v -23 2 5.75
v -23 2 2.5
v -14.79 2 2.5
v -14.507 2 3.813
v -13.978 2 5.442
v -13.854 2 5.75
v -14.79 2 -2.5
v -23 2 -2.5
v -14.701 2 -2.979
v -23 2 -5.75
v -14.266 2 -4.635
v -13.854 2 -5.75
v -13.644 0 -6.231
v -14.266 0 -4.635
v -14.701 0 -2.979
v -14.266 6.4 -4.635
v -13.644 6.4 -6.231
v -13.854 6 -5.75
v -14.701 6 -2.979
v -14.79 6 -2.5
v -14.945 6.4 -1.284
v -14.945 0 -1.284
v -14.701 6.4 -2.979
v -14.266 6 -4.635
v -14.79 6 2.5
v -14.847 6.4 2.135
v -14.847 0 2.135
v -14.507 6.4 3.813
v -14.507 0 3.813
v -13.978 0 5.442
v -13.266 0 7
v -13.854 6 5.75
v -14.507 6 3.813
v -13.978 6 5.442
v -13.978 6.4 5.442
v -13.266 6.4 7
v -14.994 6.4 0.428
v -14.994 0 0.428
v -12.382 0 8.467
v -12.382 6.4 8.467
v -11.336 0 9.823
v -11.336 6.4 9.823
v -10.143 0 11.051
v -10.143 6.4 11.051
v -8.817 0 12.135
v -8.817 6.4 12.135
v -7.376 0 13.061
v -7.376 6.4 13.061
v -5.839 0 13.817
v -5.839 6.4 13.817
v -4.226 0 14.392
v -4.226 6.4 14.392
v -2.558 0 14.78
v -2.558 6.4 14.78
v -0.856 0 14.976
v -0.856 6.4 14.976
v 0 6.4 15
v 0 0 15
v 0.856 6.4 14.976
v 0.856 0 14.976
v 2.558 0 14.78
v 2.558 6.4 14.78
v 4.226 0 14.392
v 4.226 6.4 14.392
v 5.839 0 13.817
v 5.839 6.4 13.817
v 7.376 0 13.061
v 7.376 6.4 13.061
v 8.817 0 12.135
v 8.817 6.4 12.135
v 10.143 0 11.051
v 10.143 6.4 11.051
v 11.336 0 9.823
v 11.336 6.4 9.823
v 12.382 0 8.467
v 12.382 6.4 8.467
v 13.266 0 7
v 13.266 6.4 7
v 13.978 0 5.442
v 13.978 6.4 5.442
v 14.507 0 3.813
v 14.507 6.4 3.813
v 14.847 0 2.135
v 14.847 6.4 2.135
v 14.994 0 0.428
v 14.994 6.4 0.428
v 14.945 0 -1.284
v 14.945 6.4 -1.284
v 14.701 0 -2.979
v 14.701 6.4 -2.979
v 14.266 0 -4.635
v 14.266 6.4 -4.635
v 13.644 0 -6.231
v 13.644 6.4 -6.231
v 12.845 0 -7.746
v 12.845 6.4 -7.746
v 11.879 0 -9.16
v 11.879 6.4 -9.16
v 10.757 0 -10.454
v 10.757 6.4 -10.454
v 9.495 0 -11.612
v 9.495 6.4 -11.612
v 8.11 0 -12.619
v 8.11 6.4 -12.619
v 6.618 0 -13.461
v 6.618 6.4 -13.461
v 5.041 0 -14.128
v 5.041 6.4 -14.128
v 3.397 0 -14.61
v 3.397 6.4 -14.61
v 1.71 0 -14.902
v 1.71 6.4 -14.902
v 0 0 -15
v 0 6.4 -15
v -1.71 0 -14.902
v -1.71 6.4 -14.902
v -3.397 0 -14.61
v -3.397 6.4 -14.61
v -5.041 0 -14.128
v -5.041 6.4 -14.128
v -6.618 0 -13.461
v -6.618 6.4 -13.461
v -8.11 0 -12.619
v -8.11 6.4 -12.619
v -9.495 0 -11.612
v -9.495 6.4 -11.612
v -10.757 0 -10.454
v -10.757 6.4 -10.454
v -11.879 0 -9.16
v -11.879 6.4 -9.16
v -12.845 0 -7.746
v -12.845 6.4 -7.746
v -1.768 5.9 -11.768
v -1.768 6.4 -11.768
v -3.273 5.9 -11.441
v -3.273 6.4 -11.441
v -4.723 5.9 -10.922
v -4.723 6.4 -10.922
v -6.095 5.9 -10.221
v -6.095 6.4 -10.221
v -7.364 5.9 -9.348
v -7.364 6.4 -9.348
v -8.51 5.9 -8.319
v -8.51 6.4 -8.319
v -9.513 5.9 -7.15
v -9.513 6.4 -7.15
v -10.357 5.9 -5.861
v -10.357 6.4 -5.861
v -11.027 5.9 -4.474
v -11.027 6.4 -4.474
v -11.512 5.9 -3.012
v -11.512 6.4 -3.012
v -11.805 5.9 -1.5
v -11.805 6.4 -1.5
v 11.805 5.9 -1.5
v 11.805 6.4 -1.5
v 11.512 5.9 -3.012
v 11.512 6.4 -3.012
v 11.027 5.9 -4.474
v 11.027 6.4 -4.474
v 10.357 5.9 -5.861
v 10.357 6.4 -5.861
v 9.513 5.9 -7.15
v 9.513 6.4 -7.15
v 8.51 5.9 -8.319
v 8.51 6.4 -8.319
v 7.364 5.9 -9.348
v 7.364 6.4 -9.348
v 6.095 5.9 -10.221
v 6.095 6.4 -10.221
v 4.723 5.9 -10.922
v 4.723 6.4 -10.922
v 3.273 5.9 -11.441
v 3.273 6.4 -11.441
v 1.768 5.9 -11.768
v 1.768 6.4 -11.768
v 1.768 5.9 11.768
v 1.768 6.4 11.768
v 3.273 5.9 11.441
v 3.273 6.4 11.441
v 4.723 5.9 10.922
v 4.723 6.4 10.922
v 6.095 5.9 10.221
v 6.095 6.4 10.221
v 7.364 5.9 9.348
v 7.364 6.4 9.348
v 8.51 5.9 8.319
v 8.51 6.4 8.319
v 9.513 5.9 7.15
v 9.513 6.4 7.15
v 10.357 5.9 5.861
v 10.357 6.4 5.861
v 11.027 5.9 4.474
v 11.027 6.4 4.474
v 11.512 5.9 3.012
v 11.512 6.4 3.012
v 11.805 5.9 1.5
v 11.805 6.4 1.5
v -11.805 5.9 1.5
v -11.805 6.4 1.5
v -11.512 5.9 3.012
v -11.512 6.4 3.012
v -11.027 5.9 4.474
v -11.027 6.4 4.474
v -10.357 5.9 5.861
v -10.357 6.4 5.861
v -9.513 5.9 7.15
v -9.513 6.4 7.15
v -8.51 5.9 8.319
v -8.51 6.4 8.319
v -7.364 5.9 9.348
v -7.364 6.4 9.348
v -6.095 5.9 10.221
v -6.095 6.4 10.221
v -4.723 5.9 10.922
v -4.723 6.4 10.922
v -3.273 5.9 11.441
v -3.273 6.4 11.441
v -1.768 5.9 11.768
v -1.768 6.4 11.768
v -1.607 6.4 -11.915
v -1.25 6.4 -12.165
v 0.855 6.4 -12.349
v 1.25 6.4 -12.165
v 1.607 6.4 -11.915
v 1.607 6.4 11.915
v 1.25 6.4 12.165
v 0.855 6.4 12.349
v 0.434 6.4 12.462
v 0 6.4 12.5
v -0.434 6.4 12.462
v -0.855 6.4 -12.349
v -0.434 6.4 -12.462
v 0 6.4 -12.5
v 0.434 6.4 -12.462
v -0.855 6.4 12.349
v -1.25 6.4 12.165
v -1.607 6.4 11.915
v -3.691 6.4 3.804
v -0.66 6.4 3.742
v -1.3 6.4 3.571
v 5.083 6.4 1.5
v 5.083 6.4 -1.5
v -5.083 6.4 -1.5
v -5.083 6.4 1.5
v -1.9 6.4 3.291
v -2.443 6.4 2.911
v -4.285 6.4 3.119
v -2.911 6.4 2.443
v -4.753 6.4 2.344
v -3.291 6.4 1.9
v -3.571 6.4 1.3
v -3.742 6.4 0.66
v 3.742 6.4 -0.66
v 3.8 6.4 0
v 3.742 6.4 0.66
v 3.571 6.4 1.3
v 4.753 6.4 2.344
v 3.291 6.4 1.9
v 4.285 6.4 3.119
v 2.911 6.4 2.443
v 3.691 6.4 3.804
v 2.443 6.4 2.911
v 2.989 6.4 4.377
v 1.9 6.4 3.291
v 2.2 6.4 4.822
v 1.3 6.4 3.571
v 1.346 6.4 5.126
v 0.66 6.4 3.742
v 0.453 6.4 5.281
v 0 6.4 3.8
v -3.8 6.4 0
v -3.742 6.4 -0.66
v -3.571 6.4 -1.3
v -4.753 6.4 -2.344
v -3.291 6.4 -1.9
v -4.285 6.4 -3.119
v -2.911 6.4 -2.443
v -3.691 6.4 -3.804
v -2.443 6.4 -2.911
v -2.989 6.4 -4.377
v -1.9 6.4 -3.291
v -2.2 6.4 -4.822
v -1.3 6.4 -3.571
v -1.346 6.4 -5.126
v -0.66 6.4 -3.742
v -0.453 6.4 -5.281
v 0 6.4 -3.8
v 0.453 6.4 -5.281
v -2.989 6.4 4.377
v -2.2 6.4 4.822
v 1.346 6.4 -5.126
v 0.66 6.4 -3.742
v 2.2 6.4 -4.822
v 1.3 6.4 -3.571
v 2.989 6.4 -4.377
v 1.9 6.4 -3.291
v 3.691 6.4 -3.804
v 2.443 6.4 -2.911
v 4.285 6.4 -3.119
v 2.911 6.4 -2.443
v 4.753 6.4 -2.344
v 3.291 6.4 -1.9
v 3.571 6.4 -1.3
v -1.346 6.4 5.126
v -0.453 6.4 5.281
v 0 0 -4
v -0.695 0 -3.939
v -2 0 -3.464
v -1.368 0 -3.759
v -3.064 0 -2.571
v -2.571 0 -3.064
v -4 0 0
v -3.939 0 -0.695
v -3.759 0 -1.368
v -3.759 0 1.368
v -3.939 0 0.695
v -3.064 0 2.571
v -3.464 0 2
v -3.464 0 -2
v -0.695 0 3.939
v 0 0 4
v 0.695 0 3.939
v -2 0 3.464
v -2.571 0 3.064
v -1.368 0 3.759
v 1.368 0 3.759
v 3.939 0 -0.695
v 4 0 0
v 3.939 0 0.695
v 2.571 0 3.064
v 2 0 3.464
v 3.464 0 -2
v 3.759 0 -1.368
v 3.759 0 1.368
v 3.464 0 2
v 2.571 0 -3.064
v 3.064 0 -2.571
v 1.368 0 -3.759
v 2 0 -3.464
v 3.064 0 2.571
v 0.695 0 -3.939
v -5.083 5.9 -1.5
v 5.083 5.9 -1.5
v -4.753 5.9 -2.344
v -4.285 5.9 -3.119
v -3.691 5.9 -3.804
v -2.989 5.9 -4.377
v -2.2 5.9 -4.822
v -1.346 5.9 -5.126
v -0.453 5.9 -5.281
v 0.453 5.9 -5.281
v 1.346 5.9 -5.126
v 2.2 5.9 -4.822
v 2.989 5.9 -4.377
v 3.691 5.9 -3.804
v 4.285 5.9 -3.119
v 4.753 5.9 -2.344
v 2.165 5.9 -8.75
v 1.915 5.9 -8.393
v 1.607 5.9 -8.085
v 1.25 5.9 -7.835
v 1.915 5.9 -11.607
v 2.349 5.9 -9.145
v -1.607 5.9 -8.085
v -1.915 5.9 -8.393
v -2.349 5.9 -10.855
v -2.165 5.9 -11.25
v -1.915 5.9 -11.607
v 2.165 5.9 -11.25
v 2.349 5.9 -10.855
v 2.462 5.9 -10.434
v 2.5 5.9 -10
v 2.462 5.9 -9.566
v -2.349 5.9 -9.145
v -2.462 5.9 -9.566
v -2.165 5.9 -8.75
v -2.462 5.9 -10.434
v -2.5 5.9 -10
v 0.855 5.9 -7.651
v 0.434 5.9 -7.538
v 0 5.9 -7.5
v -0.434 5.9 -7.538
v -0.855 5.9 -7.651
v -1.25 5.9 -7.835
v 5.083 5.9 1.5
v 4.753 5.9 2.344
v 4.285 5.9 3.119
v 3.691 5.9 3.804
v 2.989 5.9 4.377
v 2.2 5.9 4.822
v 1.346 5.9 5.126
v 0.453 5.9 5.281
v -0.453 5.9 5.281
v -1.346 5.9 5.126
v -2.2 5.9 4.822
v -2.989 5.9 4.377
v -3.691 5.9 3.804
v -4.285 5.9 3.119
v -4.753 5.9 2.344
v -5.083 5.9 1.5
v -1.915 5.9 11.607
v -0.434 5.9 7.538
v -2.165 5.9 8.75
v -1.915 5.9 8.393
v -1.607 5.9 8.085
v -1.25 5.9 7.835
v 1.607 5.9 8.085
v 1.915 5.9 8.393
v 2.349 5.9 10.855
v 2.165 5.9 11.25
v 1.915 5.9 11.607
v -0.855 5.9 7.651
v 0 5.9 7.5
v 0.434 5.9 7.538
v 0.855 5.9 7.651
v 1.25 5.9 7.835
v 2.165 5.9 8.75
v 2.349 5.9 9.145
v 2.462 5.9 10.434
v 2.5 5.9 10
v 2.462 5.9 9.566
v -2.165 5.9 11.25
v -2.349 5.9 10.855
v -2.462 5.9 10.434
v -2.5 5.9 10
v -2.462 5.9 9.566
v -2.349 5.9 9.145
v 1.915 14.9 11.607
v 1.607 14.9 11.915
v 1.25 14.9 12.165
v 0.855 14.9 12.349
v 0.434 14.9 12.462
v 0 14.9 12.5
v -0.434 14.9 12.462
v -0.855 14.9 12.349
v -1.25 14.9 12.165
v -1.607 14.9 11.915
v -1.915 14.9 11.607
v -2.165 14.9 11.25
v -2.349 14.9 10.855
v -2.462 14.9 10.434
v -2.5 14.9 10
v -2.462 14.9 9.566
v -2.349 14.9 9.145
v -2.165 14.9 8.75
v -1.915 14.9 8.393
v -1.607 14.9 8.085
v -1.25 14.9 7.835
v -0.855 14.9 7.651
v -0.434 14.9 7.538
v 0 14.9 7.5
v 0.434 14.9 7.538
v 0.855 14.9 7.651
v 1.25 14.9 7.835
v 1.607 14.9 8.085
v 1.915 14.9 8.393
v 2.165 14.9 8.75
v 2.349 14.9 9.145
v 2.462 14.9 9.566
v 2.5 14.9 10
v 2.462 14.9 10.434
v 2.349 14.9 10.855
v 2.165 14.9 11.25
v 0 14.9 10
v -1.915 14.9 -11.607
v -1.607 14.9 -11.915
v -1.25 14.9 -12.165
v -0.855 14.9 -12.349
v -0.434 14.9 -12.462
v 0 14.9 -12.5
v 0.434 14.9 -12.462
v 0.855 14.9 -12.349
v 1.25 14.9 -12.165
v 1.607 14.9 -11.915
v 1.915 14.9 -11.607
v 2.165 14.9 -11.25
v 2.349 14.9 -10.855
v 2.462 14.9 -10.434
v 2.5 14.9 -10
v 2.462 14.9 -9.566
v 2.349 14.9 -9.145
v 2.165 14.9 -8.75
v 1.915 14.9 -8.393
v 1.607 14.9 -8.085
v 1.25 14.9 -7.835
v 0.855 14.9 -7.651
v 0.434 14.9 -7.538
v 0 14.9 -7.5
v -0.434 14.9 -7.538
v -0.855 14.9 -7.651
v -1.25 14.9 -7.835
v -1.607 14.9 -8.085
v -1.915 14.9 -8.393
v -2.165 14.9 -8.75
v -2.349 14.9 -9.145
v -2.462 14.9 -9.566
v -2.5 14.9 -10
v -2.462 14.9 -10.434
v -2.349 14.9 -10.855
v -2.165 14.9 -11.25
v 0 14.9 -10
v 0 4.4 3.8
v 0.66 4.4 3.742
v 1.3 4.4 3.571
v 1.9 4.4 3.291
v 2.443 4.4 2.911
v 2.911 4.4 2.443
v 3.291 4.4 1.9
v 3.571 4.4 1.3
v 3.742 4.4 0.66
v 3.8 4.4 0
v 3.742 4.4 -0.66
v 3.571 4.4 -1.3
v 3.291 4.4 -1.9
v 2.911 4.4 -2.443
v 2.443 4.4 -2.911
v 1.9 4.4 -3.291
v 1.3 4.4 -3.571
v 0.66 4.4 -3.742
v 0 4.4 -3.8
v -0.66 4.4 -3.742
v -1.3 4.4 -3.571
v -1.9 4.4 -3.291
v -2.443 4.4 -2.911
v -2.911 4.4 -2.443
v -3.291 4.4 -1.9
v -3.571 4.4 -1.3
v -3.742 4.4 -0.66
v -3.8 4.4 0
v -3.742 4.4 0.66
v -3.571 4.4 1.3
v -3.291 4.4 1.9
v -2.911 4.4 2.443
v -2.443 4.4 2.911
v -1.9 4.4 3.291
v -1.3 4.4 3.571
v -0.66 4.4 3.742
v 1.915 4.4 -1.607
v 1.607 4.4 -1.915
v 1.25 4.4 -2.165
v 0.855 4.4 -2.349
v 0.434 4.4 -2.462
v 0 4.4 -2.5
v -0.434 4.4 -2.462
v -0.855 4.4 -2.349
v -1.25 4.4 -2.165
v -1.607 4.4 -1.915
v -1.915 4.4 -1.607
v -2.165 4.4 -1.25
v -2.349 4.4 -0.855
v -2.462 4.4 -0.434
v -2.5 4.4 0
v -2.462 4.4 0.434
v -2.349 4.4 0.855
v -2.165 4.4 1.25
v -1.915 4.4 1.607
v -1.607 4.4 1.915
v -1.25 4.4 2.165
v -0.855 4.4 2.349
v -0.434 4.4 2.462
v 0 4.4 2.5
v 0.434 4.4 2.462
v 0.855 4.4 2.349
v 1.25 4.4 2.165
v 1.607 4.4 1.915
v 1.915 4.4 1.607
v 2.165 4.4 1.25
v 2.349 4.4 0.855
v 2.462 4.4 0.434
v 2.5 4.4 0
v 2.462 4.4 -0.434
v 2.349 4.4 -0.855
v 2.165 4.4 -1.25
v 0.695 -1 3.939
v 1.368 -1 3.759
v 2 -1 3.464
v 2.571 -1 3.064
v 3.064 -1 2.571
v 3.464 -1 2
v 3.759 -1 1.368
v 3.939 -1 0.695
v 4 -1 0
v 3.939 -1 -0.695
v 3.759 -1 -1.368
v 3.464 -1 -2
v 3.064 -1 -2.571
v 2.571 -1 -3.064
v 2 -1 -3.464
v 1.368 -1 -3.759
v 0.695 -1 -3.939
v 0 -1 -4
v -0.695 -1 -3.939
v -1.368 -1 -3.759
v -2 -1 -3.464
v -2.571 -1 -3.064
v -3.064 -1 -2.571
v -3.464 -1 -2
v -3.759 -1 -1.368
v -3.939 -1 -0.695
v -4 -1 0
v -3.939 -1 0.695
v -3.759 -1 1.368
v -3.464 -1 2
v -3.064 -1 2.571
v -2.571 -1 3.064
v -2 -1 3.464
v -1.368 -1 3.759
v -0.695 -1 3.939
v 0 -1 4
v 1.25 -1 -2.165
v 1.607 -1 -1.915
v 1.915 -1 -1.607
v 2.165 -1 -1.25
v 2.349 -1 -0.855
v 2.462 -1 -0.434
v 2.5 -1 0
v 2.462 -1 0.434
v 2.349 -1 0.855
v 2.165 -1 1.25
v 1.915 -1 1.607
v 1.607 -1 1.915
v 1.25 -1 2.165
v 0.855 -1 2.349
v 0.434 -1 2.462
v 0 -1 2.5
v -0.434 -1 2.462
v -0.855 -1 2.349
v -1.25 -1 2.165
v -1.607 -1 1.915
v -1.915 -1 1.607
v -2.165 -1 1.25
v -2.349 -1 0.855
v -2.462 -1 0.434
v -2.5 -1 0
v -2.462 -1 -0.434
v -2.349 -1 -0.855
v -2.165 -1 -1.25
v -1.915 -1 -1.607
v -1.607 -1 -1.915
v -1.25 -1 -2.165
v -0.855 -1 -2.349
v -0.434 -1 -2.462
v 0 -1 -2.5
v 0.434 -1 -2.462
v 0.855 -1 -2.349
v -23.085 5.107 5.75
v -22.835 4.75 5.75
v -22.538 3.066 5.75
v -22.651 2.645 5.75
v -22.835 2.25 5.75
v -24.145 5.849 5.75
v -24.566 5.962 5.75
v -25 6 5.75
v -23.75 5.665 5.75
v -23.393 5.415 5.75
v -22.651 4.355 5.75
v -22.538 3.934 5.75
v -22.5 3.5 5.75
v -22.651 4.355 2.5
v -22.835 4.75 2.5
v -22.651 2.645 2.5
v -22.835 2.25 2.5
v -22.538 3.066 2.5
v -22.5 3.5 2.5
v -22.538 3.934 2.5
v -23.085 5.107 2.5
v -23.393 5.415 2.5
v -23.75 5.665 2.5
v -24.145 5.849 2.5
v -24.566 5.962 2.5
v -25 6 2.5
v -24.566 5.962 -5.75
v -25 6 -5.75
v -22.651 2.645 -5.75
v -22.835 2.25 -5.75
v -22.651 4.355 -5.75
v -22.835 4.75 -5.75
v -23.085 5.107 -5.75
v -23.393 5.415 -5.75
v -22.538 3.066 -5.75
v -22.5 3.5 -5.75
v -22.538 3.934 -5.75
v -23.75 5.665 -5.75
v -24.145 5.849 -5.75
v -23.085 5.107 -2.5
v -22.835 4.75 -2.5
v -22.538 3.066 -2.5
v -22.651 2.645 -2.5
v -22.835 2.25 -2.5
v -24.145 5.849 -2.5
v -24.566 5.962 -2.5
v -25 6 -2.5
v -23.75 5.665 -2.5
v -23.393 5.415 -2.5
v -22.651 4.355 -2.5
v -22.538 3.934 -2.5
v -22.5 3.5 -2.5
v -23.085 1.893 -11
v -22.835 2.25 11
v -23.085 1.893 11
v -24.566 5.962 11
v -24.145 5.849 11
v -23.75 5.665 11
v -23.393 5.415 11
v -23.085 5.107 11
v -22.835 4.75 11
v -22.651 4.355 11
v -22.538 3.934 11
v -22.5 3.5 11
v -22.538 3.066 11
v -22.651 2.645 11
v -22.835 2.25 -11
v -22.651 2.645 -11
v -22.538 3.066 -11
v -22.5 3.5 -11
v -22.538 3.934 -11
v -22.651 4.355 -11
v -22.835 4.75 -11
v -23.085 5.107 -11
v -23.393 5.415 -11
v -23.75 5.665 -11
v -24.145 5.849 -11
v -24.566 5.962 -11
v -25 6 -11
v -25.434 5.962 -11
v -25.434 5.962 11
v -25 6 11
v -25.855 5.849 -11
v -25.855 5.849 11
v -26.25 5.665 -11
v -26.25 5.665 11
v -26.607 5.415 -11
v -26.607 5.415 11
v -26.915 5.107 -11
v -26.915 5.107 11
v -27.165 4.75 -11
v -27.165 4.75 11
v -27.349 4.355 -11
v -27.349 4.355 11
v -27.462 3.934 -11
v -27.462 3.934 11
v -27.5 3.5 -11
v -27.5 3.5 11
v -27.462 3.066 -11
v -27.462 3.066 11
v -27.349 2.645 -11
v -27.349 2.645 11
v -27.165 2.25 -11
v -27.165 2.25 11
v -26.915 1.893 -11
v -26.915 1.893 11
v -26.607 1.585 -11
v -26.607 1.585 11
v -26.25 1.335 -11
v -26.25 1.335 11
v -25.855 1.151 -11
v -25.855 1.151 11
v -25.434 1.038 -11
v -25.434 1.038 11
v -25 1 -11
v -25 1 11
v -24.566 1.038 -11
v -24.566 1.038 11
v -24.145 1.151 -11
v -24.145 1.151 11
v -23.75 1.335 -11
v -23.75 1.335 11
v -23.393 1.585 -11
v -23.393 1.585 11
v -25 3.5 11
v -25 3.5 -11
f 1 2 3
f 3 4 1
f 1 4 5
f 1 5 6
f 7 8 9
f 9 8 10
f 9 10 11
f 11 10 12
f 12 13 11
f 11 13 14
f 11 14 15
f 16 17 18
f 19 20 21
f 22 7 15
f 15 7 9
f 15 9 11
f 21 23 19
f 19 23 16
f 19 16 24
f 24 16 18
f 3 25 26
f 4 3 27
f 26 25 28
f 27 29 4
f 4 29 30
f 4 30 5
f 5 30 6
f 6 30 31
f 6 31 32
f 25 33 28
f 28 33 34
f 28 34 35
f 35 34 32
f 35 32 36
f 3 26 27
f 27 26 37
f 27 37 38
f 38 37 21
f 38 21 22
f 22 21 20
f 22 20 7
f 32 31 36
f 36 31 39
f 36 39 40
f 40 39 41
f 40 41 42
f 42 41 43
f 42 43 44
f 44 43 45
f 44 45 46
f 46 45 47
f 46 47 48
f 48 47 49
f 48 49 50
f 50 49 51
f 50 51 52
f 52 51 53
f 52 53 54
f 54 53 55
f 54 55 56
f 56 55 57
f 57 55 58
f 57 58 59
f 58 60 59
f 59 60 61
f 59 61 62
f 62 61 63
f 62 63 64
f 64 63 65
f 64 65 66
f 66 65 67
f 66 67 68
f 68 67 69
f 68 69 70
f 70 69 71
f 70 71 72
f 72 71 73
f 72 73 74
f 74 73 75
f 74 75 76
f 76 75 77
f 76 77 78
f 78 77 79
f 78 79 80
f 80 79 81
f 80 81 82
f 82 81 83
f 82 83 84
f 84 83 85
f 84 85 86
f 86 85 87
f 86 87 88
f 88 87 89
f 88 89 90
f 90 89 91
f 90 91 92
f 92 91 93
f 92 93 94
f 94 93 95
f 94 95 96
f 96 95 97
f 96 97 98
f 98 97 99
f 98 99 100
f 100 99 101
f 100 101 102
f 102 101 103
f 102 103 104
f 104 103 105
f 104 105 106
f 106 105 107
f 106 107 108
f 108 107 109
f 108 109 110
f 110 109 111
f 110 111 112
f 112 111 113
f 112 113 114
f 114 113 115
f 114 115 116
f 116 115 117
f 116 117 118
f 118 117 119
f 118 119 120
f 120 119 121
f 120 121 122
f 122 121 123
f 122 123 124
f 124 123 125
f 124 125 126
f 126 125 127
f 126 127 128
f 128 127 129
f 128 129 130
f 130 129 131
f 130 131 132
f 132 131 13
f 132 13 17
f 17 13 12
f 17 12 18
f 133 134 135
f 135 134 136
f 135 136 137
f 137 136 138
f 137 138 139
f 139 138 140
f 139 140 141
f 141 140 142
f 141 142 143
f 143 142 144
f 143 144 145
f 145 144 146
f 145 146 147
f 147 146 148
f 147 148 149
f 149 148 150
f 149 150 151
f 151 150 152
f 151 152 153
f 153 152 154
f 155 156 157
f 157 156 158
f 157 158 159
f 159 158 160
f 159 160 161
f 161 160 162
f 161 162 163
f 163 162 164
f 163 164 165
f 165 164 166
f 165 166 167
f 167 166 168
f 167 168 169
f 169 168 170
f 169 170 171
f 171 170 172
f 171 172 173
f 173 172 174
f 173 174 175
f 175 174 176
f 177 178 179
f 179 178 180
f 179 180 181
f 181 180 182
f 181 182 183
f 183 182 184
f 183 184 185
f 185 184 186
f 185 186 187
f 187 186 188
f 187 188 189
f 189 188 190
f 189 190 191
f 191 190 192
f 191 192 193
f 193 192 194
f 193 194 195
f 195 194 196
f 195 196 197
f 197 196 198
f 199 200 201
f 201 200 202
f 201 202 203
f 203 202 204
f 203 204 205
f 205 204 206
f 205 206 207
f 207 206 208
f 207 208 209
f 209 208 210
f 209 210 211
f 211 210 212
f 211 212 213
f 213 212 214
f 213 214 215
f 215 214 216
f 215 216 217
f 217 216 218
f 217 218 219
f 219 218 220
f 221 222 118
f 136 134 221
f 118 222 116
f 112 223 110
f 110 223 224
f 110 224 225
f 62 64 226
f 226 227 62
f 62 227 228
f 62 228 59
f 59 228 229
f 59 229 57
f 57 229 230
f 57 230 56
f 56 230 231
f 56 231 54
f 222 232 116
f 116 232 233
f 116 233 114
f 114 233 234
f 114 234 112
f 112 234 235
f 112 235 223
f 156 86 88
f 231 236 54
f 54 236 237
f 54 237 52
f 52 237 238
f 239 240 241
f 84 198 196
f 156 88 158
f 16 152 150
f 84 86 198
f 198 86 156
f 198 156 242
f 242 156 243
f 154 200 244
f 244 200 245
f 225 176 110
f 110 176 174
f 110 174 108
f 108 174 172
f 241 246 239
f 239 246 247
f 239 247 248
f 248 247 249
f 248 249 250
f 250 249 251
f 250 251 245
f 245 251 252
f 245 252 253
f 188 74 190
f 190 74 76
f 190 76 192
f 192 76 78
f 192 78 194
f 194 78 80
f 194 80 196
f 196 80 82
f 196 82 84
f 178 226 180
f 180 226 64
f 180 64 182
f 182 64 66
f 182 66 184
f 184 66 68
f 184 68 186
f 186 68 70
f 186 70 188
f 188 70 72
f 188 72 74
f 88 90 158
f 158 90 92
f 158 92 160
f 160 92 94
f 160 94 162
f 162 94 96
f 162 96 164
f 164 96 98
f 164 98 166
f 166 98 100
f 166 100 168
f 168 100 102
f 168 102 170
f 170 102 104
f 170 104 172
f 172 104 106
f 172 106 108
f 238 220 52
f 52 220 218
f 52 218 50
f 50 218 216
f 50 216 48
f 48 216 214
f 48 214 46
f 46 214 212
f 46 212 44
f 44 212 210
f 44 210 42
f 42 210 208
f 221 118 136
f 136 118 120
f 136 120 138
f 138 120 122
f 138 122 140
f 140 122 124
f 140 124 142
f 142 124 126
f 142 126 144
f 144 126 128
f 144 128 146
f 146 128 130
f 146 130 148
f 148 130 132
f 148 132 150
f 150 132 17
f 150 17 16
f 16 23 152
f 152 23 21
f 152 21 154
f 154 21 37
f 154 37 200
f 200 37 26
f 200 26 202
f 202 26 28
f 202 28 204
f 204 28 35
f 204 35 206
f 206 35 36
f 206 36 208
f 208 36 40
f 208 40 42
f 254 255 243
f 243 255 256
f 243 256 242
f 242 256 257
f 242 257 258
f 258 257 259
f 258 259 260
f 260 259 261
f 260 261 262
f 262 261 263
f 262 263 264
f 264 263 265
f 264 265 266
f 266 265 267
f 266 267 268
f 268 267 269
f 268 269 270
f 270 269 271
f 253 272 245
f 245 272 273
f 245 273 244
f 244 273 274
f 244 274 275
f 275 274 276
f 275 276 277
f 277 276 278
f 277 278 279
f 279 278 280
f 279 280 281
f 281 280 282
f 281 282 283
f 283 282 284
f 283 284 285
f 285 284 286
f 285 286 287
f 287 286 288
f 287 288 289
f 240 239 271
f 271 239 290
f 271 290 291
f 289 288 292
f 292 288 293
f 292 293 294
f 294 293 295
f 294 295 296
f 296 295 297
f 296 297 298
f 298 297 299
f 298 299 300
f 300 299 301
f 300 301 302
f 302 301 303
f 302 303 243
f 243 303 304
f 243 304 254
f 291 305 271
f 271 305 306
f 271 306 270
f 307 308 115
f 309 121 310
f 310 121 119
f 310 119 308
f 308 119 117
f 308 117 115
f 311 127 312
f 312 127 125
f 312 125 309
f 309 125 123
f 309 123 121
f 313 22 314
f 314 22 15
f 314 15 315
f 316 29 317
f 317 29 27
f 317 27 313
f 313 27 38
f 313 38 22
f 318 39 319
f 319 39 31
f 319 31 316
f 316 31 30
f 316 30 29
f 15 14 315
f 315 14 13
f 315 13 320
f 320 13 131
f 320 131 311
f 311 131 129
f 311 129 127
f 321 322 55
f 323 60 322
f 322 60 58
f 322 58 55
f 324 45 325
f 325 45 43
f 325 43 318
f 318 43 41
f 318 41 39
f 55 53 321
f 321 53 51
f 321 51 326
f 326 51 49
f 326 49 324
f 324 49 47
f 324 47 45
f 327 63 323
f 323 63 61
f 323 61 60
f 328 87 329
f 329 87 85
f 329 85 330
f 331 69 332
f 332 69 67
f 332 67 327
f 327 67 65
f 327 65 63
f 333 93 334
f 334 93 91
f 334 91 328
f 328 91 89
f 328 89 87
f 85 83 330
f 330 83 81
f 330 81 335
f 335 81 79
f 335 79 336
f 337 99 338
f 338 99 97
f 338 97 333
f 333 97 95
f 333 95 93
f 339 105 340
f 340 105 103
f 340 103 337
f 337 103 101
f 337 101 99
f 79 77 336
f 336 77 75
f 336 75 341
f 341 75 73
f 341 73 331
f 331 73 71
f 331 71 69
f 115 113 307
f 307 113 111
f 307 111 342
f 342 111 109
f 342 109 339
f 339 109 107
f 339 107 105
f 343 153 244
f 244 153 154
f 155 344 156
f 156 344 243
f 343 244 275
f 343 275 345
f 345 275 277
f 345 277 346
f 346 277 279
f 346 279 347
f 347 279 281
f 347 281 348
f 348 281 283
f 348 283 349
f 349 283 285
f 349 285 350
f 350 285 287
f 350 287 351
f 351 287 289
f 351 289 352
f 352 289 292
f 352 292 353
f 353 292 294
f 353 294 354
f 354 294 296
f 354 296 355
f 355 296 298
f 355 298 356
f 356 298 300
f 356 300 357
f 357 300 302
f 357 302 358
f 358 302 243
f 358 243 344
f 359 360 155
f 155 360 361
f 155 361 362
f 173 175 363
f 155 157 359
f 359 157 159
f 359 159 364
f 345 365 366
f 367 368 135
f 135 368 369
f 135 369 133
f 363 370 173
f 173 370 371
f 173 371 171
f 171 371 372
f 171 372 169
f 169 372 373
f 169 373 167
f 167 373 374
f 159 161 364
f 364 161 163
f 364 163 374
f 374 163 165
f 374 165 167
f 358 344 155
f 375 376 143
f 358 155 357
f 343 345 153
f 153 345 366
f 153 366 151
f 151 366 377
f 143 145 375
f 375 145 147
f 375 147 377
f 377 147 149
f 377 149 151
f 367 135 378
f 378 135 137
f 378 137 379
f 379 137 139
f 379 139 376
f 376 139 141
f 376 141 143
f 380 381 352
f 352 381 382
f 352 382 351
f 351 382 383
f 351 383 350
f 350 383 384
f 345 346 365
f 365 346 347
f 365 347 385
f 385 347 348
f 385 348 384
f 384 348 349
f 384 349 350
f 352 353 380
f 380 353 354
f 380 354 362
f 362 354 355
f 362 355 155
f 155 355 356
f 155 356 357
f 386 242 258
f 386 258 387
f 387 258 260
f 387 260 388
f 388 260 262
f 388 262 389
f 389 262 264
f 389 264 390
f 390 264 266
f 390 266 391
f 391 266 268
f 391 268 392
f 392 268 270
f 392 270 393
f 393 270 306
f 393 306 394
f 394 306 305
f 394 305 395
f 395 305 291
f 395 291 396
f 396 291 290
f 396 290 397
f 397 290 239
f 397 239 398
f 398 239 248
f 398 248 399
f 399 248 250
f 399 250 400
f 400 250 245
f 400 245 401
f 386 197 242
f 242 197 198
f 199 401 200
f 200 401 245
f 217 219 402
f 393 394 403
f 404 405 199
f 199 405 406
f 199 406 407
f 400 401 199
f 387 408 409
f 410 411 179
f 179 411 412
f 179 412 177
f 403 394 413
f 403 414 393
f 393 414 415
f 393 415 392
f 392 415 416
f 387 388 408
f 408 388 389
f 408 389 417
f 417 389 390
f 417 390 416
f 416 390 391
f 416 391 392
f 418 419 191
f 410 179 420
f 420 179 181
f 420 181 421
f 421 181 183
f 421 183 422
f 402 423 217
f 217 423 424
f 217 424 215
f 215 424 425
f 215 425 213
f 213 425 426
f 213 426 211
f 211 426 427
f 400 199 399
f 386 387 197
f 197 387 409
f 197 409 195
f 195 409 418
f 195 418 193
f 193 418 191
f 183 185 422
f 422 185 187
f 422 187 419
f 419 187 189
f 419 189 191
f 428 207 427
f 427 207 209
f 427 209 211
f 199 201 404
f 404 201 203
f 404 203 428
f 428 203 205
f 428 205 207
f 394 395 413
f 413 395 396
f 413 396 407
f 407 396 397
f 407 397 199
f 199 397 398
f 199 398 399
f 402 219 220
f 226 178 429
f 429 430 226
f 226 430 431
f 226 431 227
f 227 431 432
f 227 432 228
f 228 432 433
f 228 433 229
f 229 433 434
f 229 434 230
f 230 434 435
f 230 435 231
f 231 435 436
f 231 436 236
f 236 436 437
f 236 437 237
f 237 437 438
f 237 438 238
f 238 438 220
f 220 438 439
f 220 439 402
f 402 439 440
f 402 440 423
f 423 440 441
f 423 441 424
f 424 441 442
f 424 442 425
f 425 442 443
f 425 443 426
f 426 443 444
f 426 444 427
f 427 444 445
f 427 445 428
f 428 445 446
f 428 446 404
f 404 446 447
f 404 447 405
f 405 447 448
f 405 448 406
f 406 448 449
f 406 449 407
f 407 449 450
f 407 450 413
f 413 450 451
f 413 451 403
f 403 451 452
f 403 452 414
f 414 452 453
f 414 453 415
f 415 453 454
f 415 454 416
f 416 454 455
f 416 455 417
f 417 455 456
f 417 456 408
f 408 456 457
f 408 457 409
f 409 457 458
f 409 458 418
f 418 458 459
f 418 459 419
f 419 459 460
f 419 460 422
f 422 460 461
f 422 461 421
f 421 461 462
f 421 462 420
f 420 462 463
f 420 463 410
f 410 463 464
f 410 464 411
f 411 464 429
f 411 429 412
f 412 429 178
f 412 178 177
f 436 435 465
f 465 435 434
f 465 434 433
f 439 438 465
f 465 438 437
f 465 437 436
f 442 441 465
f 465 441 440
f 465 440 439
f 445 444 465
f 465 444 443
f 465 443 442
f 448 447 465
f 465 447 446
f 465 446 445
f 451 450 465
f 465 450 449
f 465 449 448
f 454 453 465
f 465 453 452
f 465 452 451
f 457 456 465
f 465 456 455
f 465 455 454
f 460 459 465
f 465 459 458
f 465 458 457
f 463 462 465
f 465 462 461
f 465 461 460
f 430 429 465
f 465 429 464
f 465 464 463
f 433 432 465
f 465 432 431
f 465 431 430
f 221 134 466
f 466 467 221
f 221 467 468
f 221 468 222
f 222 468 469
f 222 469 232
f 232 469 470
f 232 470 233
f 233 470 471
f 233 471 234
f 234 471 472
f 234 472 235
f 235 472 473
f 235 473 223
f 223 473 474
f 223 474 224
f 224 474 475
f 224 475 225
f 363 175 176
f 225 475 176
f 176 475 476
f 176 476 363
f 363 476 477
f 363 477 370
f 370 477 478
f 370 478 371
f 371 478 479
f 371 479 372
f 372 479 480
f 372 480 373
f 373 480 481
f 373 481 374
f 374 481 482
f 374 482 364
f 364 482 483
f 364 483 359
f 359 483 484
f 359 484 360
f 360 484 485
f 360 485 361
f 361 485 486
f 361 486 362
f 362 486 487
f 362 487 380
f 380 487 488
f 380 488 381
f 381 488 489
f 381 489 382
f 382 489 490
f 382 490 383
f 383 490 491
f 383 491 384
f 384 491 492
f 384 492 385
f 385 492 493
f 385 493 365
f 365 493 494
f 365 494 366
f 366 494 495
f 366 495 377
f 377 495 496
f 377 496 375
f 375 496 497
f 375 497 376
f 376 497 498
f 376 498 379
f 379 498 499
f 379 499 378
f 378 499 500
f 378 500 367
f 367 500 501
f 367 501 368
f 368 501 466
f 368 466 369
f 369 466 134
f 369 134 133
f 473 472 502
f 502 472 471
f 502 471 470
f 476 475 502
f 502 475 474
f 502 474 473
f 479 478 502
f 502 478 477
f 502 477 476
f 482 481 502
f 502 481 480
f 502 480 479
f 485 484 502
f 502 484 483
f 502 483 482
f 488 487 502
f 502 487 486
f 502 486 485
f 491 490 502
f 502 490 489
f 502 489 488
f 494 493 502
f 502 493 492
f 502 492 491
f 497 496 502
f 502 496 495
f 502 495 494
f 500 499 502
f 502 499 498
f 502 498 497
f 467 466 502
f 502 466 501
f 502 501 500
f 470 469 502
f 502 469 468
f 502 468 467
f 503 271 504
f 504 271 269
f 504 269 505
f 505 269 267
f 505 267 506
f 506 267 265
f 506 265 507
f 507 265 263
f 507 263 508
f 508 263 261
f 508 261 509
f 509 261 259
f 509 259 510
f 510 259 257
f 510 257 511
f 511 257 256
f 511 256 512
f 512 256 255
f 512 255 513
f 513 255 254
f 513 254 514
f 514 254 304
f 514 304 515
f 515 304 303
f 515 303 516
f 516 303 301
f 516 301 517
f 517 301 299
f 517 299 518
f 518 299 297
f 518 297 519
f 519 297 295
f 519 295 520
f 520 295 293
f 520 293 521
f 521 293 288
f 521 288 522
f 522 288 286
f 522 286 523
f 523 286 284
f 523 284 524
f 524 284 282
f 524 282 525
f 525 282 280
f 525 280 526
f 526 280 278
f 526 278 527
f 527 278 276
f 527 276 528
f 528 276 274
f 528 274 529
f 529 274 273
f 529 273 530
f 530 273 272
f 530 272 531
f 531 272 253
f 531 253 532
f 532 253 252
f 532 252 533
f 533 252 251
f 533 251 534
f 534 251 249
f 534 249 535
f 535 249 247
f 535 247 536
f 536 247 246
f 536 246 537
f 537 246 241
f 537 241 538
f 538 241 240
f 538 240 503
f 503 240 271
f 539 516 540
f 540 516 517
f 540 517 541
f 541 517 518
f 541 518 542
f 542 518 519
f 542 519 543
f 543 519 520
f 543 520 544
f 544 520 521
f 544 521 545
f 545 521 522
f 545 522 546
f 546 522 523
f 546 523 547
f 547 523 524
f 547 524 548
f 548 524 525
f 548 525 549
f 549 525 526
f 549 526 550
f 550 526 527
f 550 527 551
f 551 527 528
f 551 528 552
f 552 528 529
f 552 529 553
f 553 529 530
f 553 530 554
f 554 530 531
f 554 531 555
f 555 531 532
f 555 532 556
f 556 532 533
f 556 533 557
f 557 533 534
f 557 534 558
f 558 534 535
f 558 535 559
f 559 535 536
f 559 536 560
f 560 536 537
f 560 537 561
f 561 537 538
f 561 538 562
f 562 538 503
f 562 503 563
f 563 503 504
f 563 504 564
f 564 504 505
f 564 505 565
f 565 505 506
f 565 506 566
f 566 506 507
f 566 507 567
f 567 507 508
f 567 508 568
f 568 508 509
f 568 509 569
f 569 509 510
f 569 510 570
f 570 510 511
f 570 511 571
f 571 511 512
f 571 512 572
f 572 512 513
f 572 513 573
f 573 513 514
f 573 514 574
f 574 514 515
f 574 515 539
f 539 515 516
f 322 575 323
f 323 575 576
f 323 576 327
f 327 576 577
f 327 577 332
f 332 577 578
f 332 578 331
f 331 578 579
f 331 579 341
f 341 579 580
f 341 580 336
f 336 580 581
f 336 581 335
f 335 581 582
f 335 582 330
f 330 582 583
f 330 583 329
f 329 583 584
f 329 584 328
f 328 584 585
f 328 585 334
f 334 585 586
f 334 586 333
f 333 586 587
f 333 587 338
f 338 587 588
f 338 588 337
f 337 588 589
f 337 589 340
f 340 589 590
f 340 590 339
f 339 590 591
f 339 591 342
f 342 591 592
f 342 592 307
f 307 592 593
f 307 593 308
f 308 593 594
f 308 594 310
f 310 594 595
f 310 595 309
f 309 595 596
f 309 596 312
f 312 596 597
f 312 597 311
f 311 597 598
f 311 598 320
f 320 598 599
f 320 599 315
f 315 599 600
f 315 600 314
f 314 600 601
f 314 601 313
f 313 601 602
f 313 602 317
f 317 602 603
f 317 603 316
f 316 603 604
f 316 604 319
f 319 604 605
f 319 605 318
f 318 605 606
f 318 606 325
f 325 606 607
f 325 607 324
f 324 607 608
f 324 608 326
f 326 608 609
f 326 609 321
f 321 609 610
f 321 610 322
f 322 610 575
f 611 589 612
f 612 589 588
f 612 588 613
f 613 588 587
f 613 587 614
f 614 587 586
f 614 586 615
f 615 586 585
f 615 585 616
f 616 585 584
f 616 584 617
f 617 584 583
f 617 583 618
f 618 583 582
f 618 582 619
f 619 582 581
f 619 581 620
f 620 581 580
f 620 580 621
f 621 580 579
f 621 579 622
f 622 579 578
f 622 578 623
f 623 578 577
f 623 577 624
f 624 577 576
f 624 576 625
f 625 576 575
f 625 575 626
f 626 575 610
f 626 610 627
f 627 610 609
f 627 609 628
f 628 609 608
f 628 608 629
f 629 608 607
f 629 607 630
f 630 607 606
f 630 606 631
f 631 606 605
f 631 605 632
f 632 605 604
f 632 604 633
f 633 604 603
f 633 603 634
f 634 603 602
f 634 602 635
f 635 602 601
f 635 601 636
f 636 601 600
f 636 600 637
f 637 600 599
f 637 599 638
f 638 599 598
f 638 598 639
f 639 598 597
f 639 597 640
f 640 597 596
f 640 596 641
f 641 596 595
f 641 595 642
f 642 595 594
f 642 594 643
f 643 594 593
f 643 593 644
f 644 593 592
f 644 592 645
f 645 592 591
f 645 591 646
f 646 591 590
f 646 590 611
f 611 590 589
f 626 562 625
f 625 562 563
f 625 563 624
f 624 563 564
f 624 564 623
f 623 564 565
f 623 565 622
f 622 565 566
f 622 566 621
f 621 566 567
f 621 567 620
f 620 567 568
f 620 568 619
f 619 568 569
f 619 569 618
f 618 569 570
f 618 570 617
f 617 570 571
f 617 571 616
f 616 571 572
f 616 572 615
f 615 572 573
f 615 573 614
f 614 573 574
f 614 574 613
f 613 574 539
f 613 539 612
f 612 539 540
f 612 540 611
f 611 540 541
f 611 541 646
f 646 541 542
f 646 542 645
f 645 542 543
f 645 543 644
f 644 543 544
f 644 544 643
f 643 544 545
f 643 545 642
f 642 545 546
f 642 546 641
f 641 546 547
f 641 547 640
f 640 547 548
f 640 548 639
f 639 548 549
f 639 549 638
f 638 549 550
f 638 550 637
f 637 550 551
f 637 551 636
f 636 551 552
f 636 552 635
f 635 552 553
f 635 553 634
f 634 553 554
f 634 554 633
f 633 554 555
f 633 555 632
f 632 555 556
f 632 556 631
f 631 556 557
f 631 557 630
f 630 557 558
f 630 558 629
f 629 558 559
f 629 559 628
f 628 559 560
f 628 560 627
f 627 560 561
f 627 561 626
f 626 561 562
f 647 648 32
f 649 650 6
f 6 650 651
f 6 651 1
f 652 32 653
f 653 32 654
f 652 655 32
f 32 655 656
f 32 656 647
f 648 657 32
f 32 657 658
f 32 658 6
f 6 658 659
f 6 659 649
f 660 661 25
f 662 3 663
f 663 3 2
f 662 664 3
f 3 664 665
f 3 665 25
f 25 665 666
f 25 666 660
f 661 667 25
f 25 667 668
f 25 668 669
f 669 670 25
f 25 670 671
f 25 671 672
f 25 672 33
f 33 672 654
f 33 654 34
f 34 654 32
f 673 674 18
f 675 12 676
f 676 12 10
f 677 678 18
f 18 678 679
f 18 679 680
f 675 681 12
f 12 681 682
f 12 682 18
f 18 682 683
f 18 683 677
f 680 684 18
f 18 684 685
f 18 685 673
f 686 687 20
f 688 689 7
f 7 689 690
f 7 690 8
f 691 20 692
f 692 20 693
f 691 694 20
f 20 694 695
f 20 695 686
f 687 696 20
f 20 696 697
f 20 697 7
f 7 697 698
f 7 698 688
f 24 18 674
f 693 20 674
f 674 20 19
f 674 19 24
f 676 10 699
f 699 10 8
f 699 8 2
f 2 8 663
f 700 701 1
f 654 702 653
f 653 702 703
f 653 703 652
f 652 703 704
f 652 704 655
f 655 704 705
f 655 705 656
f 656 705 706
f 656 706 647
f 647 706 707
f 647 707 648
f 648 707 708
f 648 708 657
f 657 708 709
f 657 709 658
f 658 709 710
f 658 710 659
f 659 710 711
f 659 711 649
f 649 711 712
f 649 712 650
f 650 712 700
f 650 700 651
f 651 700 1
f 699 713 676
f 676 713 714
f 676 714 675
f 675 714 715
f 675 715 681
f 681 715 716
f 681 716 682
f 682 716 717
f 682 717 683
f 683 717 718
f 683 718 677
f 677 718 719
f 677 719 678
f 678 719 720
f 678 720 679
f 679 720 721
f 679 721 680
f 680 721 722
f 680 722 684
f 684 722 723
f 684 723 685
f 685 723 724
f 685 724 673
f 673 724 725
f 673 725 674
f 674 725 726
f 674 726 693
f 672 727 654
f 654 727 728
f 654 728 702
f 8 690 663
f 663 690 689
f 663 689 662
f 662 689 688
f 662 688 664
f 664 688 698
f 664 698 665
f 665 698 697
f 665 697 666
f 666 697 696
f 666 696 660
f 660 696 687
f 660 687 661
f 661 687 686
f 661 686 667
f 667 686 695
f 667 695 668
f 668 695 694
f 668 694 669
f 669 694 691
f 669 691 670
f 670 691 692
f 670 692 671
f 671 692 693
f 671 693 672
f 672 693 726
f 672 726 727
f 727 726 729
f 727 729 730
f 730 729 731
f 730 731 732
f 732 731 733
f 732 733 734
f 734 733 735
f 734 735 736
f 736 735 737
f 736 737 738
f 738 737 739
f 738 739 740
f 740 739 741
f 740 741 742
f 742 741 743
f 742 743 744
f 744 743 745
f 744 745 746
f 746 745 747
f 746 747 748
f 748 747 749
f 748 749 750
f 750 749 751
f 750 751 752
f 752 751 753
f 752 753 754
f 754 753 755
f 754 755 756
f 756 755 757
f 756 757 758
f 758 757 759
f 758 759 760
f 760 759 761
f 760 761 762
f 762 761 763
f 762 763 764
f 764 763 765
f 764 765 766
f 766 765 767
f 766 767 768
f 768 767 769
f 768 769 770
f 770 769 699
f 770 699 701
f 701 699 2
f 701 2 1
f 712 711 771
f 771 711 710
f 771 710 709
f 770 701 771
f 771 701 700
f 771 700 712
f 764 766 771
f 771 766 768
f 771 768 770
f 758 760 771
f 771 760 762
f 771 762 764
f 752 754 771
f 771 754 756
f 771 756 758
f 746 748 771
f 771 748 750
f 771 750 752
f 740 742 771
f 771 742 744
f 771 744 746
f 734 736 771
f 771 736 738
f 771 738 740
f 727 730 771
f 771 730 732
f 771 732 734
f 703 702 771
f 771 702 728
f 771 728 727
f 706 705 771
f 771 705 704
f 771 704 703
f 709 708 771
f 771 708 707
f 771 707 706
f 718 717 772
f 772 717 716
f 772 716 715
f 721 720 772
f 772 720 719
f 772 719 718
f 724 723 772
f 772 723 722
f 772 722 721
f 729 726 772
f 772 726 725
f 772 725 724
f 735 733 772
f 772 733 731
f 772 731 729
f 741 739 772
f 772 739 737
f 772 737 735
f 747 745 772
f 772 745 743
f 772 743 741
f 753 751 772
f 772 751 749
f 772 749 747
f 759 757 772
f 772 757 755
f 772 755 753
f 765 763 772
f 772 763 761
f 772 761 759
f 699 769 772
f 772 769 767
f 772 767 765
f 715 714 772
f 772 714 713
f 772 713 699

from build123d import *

# Parameters (mm, degrees)
SKETCH1_R           = 15
BOSS_EXTRUDE1_DEPTH = 6.4
CUT_EXTRUDE1_DEPTH  = 0.5
SKETCH3_R           = 2.5
BOSS_EXTRUDE2_DEPTH = 9
SKETCH4_R           = 3.8
CUT_EXTRUDE2_DEPTH  = 2
SKETCH6_R           = 4
BOSS_EXTRUDE3_DEPTH = 1
SKETCH5_R           = 2.5
CUT_EXTRUDE3_DEPTH  = 6.4
SKETCH8_W           = 12
SKETCH8_H           = 3.25
BOSS_EXTRUDE4_DEPTH = 4
SKETCH9_R           = 2.5
BOSS_EXTRUDE6_DEPTH = 11


with BuildPart() as part:
    # Sketch1 → Boss-Extrude1 (new body)
    with BuildSketch(Plane(origin=(0, 0, 0), x_dir=(1, 0, 0), z_dir=(0, 1, 0))):
        Circle(SKETCH1_R)
    extrude(amount=BOSS_EXTRUDE1_DEPTH)

    # Sketch2 → Cut-Extrude1 (cut)
    with BuildSketch(Plane(origin=(0, 6.4, 0), x_dir=(1, 0, 0), z_dir=(0, 1, 0))):
        with BuildLine():
            ThreePointArc((-5.083306011, -1.5), (0, -5.3), (5.083306011, -1.5))
            Line((5.083306011, -1.5), (11.805083651, -1.5))
            ThreePointArc((11.805083651, -1.5), (0, -11.9), (-11.805083651, -1.5))
            Line((-11.805083651, -1.5), (-5.083306011, -1.5))
        make_face()
        with BuildLine():
            Line((-11.805083651, 1.5), (-5.083306011, 1.5))
            ThreePointArc((-5.083306011, 1.5), (0, 5.3), (5.083306011, 1.5))
            Line((5.083306011, 1.5), (11.805083651, 1.5))
            ThreePointArc((11.805083651, 1.5), (0, 11.9), (-11.805083651, 1.5))
        make_face()
    extrude(amount=-CUT_EXTRUDE1_DEPTH, mode=Mode.SUBTRACT)

    # Sketch3 → Boss-Extrude2 (add)
    with BuildSketch(Plane(origin=(0, 5.9, 0), x_dir=(1, 0, 0), z_dir=(0, 1, 0))):
        with Locations((0, -10)):
            Circle(SKETCH3_R)
        with Locations((0, 10)):
            Circle(SKETCH3_R)
    extrude(amount=BOSS_EXTRUDE2_DEPTH)

    # Sketch4 → Cut-Extrude2 (cut)
    with BuildSketch(Plane(origin=(0, 6.4, 0), x_dir=(1, 0, 0), z_dir=(0, 1, 0))):
        Circle(SKETCH4_R)
    extrude(amount=-CUT_EXTRUDE2_DEPTH, mode=Mode.SUBTRACT)

    # Sketch6 → Boss-Extrude3 (add)
    with BuildSketch(Plane.XZ):
        Circle(SKETCH6_R)
    extrude(amount=BOSS_EXTRUDE3_DEPTH)

    # Sketch5 → Cut-Extrude3 (cut, through all)
    with BuildSketch(Plane(origin=(0, 4.4, 0), x_dir=(1, 0, 0), z_dir=(0, 1, 0))):
        Circle(SKETCH5_R)
    extrude(amount=-CUT_EXTRUDE3_DEPTH, mode=Mode.SUBTRACT)

    # Sketch8 → Boss-Extrude4 (add)
    with BuildSketch(Plane(origin=(0, 2, 0), x_dir=(1, 0, 0), z_dir=(0, 1, 0))):
        with Locations((-19, 4.125)):
            Rectangle(SKETCH8_W, SKETCH8_H)
        with Locations((-19, -4.125)):
            Rectangle(SKETCH8_W, SKETCH8_H)
    extrude(amount=BOSS_EXTRUDE4_DEPTH)

    # Sketch9 → Boss-Extrude6 (add, symmetric)
    with BuildSketch(Plane.XY):
        with Locations((-25, 3.5)):
            Circle(SKETCH9_R)
    extrude(amount=BOSS_EXTRUDE6_DEPTH, both=True)


solid = part.part
